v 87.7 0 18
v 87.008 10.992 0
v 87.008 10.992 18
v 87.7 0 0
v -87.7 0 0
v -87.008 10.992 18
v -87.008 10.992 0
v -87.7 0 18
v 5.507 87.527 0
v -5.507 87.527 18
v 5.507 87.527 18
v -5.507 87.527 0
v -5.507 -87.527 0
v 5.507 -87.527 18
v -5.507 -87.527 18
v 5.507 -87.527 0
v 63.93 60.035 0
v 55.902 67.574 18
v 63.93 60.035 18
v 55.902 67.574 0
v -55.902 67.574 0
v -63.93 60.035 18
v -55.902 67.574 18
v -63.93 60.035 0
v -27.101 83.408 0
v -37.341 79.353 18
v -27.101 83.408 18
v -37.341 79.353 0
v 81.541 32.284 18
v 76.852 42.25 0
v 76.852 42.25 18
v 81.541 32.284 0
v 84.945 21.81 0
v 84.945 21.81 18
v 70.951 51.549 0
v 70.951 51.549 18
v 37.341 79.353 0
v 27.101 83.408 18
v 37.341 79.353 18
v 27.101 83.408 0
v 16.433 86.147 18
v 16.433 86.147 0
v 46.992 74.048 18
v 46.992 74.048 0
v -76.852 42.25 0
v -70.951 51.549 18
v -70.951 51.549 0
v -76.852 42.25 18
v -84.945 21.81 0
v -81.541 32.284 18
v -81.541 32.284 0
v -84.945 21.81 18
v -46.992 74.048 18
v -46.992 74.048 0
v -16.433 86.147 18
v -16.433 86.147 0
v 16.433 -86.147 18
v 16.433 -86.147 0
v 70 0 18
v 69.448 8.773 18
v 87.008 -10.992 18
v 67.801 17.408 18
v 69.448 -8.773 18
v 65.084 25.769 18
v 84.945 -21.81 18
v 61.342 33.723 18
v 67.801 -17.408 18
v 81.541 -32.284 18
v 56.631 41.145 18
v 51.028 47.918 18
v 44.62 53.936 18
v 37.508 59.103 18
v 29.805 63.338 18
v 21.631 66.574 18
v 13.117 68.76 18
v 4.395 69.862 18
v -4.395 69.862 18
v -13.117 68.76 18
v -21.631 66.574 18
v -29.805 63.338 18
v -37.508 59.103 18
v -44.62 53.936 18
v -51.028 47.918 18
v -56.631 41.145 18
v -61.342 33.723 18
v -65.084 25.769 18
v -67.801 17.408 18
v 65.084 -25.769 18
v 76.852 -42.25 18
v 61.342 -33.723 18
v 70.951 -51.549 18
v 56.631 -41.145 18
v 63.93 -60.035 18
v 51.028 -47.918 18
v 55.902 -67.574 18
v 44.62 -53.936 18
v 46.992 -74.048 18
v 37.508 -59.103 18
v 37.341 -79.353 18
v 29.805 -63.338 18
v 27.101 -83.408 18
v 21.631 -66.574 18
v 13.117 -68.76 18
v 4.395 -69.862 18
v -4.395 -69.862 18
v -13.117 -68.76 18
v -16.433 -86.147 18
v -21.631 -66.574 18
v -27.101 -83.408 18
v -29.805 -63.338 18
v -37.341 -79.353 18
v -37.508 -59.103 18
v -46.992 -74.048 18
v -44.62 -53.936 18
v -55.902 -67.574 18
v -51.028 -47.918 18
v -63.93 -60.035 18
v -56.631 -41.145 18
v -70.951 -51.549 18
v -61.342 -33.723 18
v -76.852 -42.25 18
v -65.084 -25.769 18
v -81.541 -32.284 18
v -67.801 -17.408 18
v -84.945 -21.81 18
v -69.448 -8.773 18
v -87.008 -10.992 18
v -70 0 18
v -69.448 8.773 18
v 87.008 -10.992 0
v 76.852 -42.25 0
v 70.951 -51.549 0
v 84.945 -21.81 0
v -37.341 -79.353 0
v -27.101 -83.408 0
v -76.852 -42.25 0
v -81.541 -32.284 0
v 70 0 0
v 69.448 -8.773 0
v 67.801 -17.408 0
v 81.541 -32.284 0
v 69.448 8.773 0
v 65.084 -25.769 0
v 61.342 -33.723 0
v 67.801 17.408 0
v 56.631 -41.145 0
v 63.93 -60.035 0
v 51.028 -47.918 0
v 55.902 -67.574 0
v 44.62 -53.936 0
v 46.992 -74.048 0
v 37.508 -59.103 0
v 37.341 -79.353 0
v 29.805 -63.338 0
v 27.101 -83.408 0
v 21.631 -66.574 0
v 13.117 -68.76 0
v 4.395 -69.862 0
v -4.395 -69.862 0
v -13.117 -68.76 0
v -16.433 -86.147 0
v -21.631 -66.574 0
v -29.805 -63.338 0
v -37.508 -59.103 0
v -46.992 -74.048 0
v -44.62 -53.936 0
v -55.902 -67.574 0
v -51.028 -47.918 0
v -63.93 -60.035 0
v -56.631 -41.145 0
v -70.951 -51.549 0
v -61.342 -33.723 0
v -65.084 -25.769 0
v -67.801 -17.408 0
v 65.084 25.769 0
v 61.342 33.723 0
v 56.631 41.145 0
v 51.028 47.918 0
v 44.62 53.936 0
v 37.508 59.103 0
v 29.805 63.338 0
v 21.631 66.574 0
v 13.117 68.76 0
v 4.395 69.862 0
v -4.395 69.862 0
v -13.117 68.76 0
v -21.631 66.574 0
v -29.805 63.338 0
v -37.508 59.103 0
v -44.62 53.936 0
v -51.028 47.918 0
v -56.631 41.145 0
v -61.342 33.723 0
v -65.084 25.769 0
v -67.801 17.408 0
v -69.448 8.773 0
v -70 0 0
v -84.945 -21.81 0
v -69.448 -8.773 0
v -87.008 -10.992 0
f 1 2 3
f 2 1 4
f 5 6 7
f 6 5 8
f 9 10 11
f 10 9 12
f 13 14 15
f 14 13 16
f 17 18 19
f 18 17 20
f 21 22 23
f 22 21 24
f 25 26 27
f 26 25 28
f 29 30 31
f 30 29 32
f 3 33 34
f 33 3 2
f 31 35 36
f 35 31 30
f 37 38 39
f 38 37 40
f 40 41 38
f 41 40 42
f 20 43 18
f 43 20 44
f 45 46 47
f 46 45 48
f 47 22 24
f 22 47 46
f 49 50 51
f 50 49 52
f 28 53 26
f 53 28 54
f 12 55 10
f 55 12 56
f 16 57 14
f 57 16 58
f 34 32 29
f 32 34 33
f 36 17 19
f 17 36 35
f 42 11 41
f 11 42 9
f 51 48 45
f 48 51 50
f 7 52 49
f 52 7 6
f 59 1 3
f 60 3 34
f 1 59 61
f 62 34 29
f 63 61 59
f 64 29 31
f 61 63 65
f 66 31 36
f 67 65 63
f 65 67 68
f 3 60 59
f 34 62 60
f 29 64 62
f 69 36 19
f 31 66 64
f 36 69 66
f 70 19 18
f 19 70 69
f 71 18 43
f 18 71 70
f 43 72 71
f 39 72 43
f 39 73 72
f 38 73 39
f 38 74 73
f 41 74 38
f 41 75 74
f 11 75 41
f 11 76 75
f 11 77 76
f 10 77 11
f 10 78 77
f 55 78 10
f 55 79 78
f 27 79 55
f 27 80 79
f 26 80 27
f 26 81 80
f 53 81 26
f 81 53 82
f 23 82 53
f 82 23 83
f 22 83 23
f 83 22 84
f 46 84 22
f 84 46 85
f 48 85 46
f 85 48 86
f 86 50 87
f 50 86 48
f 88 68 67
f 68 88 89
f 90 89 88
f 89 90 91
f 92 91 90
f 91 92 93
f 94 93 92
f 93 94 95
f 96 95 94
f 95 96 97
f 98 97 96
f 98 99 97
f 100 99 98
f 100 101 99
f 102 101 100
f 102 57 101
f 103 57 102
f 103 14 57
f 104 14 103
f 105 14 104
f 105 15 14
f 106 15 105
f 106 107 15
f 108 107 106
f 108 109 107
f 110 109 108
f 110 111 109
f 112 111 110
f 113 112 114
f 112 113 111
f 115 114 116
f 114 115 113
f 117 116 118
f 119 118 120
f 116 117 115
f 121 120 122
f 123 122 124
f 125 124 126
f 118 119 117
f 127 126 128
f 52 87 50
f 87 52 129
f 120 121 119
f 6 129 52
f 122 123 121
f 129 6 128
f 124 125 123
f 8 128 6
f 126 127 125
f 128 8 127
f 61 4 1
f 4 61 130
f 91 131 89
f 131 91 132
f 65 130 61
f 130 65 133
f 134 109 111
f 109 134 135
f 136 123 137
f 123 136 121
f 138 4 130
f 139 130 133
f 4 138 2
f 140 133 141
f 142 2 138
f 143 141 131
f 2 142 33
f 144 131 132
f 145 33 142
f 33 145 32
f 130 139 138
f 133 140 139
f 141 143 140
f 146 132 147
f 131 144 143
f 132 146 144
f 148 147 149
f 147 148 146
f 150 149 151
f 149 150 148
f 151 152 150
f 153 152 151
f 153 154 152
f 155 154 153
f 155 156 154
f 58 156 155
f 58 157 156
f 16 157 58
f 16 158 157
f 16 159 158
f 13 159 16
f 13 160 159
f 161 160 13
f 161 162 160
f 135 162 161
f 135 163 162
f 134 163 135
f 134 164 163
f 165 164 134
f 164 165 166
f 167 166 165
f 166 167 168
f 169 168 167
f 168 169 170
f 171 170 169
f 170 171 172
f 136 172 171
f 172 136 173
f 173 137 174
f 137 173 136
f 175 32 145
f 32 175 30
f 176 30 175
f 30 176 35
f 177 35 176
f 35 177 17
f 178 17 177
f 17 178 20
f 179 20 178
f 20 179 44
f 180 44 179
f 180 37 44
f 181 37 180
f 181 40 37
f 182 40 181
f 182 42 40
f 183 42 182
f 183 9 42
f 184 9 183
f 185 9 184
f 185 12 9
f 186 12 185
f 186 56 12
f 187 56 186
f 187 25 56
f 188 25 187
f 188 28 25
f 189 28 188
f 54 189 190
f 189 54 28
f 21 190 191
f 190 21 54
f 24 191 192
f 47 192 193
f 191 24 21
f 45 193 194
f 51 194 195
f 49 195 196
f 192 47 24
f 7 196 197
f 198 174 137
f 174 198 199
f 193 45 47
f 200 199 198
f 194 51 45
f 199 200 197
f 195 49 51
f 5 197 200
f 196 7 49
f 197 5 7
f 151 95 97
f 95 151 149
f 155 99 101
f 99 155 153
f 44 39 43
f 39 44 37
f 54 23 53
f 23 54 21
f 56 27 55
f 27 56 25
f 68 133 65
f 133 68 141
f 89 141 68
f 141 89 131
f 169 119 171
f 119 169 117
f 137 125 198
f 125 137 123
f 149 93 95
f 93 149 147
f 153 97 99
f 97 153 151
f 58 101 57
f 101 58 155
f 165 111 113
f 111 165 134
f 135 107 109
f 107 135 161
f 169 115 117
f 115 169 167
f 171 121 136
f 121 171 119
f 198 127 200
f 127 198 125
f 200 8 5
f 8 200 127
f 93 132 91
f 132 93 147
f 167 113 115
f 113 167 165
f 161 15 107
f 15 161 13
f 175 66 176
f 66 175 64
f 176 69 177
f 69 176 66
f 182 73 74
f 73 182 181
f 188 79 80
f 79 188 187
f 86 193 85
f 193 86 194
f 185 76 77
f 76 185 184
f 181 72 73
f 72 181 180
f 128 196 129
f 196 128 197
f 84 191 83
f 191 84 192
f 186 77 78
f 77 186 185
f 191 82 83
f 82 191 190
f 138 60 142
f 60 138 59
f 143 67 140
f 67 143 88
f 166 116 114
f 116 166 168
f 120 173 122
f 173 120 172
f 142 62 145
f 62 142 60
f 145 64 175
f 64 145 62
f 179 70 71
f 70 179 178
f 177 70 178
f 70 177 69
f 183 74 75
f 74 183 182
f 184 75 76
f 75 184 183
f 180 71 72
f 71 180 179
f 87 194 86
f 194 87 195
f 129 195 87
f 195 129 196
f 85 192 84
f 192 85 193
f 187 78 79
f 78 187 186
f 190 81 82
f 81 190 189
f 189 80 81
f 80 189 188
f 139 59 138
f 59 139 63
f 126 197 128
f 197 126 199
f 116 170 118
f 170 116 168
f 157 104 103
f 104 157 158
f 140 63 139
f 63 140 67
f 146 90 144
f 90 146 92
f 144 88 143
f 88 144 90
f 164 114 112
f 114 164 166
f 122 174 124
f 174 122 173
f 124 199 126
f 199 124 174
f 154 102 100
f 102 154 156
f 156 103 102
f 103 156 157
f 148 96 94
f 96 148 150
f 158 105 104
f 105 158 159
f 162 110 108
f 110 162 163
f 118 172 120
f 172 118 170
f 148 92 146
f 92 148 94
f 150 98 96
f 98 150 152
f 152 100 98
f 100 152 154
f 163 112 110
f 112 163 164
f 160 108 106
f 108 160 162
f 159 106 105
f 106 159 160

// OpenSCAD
$fn = 50;


difference() {
	union() {
		translate(v = [0, 0, 0]) {
			rotate(a = [0, 0, 0]) {
				cylinder(h = 18, r = 87.7000000000);
			}
		}
	}
	union() {
		translate(v = [0, 0, 0]) {
			rotate(a = [0, 0, 0]) {
				cylinder(h = 18, r = 70.0000000000);
			}
		}
	}
}
